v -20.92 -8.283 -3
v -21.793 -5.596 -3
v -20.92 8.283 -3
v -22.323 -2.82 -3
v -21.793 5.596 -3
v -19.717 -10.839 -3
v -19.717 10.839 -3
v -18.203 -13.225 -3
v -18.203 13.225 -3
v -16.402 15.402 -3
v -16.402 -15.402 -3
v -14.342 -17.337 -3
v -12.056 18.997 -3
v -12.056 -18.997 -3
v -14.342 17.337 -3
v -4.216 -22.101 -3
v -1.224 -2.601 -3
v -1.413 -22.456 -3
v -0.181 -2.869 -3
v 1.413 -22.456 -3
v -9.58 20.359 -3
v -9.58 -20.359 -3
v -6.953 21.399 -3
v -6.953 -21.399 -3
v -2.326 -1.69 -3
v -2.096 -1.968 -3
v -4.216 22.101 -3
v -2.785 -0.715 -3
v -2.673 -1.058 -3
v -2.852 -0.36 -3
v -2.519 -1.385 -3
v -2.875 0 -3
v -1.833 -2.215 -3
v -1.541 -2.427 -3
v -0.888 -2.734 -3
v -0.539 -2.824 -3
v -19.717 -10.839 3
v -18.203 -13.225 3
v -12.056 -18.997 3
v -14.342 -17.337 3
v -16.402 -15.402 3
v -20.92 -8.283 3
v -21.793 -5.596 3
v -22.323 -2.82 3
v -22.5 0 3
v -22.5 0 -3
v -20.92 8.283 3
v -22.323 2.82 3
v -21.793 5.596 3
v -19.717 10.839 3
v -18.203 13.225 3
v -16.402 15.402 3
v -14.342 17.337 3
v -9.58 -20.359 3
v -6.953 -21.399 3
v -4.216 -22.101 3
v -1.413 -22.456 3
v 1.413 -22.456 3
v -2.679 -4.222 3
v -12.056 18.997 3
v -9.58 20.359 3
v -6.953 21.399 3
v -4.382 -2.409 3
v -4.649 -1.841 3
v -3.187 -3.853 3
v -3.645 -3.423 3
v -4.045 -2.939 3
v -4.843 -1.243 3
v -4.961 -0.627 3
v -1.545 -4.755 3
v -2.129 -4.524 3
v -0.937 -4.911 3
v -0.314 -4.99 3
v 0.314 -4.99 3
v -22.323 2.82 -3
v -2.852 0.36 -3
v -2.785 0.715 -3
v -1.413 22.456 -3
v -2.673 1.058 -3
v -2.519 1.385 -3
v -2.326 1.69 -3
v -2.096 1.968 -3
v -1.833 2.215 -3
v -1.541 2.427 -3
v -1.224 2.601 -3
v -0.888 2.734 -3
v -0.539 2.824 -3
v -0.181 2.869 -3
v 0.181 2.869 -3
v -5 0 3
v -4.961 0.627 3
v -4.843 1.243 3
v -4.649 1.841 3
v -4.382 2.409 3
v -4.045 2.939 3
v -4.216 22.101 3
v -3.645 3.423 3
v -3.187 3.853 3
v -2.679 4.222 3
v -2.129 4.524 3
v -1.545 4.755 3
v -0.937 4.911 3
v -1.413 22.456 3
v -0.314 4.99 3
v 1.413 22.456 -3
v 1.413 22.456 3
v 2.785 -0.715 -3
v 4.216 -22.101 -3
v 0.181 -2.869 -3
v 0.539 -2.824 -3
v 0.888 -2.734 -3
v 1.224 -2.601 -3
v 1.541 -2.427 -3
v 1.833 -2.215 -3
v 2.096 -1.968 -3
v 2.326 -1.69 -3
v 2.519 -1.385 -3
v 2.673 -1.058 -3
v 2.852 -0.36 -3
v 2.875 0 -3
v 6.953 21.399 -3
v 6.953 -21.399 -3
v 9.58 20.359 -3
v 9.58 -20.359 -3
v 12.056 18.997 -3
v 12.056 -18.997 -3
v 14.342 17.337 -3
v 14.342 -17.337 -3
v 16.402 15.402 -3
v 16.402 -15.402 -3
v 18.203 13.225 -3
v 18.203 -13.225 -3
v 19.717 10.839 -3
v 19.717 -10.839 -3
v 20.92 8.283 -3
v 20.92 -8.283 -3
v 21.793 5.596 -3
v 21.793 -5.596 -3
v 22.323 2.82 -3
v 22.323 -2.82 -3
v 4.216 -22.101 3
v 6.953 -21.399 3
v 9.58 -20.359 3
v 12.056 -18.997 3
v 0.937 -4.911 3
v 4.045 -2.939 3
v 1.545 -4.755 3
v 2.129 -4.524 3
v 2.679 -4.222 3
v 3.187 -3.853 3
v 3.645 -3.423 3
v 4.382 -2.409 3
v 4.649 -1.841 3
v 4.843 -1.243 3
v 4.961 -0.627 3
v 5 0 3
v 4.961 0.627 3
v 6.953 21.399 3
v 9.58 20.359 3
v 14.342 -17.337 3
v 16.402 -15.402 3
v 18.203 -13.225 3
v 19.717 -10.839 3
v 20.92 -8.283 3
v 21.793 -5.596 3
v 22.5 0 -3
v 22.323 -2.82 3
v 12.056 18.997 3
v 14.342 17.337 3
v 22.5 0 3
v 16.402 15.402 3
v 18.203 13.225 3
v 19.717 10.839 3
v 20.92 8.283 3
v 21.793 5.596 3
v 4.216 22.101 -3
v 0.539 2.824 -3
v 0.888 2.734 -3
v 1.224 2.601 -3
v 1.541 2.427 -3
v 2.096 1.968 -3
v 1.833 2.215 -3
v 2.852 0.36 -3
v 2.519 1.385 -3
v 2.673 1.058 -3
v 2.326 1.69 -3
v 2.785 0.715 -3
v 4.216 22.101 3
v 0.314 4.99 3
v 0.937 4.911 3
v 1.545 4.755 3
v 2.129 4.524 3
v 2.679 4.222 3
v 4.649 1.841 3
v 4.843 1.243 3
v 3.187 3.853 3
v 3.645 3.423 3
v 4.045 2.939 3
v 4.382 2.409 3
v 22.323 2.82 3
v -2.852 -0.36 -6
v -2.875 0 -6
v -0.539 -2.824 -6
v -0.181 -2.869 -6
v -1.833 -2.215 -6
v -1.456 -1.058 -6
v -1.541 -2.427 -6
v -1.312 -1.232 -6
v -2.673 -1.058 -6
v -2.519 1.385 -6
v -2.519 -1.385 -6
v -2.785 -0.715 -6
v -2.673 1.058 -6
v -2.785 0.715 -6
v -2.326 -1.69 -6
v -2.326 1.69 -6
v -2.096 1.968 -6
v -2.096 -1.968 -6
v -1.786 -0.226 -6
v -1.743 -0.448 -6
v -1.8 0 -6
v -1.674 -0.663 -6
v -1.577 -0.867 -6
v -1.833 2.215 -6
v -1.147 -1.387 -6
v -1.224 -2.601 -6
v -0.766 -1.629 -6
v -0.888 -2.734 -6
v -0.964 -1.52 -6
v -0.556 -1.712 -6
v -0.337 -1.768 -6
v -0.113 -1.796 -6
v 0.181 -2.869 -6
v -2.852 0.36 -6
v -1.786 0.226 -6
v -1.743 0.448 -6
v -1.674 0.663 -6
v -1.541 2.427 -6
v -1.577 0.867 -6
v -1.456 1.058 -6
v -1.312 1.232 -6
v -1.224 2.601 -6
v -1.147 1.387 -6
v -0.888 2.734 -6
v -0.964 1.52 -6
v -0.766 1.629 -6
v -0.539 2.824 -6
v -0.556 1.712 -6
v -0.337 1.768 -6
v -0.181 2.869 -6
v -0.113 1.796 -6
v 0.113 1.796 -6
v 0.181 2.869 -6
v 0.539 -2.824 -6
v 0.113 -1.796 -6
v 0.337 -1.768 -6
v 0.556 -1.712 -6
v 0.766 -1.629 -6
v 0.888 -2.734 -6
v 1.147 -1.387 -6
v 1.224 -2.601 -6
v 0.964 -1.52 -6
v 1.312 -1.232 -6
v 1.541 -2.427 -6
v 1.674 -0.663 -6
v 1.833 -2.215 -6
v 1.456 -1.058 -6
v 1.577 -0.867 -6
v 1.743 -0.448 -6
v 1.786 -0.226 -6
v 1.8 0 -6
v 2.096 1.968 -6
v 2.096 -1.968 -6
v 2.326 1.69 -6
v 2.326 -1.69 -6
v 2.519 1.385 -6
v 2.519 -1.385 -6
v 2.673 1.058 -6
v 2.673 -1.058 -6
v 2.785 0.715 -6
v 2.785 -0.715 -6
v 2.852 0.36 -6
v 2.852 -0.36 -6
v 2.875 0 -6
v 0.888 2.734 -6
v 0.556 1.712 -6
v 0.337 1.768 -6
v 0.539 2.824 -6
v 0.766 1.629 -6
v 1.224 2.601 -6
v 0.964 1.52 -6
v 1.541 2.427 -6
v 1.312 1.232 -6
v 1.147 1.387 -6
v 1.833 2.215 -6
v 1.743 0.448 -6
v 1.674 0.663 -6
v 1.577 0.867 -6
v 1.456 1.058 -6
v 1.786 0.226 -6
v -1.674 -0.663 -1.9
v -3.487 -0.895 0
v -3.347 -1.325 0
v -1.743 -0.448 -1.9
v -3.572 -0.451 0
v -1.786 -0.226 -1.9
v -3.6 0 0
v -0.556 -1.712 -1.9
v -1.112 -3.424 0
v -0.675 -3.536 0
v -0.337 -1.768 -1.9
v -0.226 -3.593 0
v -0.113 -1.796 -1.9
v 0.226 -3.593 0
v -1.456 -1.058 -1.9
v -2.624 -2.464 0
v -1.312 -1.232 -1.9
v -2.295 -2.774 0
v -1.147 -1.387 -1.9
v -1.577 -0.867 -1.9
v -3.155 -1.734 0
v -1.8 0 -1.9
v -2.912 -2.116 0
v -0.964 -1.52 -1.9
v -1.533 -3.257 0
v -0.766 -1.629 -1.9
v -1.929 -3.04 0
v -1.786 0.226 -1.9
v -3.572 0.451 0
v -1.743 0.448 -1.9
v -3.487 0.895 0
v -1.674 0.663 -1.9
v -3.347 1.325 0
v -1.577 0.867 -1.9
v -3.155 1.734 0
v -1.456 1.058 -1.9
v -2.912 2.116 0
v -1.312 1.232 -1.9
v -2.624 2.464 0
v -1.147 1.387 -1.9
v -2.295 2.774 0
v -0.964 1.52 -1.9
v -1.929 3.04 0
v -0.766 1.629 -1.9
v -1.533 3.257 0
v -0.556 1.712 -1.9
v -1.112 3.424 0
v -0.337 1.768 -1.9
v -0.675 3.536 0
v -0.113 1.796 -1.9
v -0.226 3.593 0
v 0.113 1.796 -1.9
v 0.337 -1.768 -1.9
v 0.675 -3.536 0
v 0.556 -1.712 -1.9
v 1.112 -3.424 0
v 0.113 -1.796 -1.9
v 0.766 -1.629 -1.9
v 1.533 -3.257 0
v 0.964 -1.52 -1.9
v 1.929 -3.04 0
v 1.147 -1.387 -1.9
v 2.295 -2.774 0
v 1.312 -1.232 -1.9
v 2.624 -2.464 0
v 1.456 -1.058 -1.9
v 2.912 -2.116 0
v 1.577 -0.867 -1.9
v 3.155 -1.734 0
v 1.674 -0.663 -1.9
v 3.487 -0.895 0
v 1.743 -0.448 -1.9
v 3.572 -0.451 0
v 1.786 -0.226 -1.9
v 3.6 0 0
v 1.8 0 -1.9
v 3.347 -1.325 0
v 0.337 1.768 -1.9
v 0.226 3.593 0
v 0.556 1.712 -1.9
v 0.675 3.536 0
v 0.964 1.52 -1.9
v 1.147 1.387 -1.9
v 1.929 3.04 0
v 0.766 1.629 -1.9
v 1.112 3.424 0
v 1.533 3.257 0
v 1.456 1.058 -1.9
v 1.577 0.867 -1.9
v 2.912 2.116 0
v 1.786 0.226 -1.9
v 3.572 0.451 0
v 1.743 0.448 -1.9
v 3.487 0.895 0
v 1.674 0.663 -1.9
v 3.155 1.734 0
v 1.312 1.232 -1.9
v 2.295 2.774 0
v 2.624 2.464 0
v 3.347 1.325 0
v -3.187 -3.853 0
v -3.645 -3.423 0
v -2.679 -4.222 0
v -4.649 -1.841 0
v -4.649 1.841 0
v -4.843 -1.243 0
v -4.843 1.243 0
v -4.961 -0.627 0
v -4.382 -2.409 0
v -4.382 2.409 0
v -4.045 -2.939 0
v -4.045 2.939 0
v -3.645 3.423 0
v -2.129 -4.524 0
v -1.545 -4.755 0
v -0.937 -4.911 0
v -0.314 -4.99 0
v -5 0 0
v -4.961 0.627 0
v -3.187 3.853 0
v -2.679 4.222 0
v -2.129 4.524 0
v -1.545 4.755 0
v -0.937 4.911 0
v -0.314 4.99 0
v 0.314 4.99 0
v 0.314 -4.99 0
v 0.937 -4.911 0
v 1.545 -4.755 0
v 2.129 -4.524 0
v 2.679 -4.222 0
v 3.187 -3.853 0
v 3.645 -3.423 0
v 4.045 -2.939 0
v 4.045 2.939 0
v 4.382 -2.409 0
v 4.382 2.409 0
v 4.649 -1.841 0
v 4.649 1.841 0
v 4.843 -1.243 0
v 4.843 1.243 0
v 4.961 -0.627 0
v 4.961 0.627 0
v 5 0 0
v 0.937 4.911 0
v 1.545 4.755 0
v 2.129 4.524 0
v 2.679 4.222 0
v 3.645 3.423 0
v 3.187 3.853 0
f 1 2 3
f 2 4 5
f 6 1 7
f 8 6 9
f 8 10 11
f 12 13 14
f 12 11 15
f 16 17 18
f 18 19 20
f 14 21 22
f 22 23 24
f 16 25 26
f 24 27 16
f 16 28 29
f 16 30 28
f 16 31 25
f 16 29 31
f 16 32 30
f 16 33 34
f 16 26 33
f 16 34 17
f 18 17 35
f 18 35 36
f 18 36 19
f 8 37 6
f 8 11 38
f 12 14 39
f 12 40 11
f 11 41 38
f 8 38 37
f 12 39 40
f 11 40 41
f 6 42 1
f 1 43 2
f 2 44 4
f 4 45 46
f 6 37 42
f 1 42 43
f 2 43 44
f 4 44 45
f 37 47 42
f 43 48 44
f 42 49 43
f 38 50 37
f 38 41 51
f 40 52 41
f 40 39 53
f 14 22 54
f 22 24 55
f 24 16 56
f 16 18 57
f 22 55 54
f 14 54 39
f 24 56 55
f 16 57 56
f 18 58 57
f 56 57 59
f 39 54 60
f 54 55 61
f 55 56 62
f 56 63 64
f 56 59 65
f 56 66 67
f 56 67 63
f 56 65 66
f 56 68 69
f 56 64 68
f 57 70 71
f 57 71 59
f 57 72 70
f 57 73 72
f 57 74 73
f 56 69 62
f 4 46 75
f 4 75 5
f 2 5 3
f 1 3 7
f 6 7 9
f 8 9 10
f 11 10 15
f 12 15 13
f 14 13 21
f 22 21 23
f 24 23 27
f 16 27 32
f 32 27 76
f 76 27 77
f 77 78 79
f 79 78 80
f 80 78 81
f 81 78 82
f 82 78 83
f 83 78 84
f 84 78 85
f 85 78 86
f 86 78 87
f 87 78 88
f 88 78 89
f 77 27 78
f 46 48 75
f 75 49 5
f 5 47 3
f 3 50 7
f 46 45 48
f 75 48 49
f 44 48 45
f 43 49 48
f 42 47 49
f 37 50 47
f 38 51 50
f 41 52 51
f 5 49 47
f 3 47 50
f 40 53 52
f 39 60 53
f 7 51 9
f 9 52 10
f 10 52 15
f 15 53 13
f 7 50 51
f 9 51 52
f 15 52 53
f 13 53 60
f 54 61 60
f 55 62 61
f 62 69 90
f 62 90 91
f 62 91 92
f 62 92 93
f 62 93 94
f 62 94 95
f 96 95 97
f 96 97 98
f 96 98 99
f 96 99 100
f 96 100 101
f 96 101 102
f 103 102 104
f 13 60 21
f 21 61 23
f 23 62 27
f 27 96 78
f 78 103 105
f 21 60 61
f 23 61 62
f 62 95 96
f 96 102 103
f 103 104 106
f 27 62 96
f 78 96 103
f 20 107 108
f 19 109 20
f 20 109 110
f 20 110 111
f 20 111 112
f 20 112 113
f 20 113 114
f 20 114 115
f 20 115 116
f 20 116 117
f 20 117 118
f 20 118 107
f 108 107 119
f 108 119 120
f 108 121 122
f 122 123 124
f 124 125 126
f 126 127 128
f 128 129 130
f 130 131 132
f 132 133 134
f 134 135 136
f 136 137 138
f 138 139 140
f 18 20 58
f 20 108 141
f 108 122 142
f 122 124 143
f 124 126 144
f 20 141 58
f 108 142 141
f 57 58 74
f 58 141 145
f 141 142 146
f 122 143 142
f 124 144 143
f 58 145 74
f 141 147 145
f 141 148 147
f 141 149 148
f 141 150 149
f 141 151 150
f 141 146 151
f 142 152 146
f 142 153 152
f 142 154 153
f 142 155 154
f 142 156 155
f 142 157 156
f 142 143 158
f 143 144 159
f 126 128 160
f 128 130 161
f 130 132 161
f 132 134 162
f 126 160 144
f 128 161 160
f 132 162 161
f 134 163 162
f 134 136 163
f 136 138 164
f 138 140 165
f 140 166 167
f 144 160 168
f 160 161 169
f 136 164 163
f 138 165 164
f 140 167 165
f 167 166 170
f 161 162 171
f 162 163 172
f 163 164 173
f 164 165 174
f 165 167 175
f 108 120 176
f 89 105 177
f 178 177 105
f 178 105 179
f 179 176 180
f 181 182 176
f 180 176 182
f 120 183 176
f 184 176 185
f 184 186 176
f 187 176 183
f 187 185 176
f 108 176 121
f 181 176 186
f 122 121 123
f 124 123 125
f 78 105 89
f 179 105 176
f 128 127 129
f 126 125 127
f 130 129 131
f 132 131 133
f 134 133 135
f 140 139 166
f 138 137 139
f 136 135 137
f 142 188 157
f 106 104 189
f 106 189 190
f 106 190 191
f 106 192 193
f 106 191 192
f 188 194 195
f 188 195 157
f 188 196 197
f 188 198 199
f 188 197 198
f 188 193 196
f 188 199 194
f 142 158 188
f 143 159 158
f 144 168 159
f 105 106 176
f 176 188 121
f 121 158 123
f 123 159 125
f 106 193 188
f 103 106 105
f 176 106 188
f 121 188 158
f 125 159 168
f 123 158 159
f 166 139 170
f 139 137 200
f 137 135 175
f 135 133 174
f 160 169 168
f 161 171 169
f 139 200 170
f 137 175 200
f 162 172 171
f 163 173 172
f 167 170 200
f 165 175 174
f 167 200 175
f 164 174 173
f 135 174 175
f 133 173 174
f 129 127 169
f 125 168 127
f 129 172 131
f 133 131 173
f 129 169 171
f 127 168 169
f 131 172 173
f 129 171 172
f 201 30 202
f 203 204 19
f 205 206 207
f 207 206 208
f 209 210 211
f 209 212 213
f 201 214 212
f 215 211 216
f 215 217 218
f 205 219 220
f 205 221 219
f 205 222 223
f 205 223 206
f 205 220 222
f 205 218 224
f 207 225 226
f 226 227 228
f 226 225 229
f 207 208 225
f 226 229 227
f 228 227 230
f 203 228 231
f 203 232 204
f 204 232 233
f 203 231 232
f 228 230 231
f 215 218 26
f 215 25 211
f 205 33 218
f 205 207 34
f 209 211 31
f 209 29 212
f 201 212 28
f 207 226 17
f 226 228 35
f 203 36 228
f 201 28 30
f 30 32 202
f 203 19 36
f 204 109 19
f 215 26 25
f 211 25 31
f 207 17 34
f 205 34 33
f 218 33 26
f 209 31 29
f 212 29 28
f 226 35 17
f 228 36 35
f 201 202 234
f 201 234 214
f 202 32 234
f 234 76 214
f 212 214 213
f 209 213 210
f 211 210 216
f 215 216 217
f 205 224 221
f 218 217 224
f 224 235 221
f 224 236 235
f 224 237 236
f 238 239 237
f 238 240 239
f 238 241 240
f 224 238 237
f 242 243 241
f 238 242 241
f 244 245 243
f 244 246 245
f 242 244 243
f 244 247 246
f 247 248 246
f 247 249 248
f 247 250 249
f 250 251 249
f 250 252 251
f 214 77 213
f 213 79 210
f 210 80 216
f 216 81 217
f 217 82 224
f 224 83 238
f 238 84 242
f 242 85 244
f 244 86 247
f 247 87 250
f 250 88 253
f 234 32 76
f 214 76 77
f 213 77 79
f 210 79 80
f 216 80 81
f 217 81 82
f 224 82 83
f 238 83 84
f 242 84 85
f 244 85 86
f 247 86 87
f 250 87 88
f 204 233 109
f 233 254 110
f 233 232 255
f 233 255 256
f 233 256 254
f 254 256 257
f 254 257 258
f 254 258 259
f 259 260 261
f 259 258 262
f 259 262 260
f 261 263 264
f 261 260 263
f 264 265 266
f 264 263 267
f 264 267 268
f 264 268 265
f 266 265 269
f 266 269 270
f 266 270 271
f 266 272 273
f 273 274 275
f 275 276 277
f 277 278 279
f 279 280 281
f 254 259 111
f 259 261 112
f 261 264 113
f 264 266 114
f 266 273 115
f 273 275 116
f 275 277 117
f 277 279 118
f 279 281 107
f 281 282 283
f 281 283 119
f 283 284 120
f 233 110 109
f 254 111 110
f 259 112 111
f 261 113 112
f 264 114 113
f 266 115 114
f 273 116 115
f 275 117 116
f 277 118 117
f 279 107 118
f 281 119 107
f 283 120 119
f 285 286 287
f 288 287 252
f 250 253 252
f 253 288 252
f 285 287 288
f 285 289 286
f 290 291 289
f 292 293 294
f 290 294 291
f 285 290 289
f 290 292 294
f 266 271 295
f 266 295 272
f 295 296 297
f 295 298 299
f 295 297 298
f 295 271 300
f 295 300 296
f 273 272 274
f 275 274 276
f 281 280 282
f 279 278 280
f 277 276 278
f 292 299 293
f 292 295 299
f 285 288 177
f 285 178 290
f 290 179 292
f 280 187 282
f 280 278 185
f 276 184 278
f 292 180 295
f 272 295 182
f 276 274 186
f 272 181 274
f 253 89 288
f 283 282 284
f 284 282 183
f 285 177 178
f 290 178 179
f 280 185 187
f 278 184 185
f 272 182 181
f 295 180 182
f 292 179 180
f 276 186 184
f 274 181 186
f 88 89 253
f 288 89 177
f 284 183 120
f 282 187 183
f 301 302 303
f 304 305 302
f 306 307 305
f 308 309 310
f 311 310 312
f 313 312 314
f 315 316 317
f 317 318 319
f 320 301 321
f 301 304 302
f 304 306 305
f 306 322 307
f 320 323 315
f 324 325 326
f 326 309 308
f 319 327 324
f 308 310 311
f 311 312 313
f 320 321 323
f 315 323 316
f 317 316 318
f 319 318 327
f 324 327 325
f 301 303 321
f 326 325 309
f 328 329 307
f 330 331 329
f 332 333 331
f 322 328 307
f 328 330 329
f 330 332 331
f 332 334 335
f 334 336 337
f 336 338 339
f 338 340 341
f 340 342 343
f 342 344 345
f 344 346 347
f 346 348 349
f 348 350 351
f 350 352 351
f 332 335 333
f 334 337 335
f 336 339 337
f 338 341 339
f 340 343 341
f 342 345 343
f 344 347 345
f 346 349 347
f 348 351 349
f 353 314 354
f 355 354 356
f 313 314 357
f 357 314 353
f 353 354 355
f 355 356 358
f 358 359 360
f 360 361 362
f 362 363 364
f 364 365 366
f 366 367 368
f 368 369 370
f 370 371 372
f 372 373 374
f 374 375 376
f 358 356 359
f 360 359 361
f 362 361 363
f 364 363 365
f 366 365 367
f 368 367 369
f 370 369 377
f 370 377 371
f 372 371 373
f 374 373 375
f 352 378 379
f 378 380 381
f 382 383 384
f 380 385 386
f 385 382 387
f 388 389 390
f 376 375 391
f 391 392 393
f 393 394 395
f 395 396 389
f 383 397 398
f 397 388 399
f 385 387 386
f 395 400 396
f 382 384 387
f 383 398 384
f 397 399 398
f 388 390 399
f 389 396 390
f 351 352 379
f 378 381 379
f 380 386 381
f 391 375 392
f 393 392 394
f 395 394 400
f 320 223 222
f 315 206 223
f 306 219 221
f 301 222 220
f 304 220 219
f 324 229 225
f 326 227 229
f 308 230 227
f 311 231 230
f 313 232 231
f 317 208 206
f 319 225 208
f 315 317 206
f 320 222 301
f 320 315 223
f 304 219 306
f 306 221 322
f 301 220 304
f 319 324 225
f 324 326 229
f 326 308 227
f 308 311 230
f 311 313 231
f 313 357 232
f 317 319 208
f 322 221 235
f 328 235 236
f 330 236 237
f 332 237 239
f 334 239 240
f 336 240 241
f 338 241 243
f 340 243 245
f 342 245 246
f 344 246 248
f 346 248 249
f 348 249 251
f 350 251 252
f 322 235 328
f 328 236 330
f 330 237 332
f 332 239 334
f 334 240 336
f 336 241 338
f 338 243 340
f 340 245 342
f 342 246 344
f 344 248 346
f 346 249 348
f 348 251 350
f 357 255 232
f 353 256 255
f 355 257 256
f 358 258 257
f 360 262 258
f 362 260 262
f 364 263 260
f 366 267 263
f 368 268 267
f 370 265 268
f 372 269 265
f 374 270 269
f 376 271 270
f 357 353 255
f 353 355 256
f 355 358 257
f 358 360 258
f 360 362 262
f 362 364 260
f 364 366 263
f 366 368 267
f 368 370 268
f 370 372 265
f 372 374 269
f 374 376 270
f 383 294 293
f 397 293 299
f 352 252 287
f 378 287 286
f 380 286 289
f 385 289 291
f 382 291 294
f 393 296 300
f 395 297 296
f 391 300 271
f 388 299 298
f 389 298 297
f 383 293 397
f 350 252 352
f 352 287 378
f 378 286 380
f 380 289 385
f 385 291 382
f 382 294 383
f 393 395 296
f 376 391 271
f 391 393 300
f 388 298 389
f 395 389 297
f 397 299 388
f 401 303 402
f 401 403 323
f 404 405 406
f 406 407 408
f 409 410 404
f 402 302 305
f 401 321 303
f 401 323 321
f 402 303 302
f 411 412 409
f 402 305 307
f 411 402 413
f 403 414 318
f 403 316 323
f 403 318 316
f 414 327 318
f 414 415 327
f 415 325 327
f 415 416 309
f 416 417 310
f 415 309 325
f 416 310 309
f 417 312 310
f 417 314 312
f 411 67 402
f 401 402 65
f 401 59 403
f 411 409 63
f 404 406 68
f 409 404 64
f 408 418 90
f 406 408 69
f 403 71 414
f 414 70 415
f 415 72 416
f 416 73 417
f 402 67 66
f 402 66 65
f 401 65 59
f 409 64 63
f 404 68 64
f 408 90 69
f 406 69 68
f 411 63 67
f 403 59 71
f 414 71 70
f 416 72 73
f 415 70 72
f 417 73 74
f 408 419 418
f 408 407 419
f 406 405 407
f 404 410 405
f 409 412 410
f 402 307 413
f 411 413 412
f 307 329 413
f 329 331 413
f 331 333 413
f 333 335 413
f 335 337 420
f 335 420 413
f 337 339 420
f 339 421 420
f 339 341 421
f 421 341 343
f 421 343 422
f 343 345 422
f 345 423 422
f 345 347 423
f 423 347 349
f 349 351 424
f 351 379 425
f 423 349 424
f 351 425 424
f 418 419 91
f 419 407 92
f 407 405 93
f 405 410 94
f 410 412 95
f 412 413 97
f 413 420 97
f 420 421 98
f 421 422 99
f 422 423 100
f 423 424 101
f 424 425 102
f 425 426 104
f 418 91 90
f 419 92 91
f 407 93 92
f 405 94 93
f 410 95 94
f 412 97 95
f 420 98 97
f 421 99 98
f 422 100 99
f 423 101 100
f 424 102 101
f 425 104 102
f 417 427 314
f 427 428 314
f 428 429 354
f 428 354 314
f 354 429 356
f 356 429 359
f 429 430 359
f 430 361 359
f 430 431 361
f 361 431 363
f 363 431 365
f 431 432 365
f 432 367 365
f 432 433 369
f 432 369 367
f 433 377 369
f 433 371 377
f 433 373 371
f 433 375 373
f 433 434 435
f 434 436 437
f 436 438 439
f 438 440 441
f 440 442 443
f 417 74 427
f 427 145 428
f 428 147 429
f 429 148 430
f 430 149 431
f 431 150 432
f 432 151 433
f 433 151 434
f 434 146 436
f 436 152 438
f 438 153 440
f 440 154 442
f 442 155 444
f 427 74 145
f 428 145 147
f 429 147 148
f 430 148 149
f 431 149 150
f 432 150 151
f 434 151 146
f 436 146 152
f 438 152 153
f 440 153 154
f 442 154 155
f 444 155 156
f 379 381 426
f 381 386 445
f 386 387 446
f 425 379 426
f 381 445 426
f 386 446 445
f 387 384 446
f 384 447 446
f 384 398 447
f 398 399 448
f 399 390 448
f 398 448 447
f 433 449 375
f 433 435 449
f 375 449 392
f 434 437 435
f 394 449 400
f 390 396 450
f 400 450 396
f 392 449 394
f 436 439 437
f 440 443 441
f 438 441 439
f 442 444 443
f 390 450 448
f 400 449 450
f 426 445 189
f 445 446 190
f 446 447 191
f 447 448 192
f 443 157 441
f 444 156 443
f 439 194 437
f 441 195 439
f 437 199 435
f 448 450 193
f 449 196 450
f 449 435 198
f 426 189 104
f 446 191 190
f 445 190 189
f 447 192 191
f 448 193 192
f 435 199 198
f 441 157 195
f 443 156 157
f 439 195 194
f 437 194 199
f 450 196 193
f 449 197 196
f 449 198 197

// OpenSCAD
$fn = 50;

difference() {
	union() {
		translate(v = [0, 0, -3.0]) {
			cylinder(h = 6, r = 22.5);
		}
		#translate(v = [0, 0, -6.0]) {
			cylinder(h = 6, r = 2.875);
		}
	}
	union() {
		translate(v = [0, 0, 0]) {
			rotate(a = [0, 0, 0]) {
				difference() {
					union() {
						translate(v = [0, 0, -6.0]) {
							cylinder(h = 6, r = 1.5);
						}
						translate(v = [0, 0, -1.9]) {
							cylinder(h = 1.9, r1 = 1.8, r2 = 3.6);
						}
						translate(v = [0, 0, -6.0]) {
							cylinder(h = 6, r = 1.8);
						}
						translate(v = [0, 0, -6.0]) {
							cylinder(h = 6, r = 1.5);
						}
					}
					union();
				}
			}
		}
		#cylinder(h = 3, r = 5.0);
	}
}
